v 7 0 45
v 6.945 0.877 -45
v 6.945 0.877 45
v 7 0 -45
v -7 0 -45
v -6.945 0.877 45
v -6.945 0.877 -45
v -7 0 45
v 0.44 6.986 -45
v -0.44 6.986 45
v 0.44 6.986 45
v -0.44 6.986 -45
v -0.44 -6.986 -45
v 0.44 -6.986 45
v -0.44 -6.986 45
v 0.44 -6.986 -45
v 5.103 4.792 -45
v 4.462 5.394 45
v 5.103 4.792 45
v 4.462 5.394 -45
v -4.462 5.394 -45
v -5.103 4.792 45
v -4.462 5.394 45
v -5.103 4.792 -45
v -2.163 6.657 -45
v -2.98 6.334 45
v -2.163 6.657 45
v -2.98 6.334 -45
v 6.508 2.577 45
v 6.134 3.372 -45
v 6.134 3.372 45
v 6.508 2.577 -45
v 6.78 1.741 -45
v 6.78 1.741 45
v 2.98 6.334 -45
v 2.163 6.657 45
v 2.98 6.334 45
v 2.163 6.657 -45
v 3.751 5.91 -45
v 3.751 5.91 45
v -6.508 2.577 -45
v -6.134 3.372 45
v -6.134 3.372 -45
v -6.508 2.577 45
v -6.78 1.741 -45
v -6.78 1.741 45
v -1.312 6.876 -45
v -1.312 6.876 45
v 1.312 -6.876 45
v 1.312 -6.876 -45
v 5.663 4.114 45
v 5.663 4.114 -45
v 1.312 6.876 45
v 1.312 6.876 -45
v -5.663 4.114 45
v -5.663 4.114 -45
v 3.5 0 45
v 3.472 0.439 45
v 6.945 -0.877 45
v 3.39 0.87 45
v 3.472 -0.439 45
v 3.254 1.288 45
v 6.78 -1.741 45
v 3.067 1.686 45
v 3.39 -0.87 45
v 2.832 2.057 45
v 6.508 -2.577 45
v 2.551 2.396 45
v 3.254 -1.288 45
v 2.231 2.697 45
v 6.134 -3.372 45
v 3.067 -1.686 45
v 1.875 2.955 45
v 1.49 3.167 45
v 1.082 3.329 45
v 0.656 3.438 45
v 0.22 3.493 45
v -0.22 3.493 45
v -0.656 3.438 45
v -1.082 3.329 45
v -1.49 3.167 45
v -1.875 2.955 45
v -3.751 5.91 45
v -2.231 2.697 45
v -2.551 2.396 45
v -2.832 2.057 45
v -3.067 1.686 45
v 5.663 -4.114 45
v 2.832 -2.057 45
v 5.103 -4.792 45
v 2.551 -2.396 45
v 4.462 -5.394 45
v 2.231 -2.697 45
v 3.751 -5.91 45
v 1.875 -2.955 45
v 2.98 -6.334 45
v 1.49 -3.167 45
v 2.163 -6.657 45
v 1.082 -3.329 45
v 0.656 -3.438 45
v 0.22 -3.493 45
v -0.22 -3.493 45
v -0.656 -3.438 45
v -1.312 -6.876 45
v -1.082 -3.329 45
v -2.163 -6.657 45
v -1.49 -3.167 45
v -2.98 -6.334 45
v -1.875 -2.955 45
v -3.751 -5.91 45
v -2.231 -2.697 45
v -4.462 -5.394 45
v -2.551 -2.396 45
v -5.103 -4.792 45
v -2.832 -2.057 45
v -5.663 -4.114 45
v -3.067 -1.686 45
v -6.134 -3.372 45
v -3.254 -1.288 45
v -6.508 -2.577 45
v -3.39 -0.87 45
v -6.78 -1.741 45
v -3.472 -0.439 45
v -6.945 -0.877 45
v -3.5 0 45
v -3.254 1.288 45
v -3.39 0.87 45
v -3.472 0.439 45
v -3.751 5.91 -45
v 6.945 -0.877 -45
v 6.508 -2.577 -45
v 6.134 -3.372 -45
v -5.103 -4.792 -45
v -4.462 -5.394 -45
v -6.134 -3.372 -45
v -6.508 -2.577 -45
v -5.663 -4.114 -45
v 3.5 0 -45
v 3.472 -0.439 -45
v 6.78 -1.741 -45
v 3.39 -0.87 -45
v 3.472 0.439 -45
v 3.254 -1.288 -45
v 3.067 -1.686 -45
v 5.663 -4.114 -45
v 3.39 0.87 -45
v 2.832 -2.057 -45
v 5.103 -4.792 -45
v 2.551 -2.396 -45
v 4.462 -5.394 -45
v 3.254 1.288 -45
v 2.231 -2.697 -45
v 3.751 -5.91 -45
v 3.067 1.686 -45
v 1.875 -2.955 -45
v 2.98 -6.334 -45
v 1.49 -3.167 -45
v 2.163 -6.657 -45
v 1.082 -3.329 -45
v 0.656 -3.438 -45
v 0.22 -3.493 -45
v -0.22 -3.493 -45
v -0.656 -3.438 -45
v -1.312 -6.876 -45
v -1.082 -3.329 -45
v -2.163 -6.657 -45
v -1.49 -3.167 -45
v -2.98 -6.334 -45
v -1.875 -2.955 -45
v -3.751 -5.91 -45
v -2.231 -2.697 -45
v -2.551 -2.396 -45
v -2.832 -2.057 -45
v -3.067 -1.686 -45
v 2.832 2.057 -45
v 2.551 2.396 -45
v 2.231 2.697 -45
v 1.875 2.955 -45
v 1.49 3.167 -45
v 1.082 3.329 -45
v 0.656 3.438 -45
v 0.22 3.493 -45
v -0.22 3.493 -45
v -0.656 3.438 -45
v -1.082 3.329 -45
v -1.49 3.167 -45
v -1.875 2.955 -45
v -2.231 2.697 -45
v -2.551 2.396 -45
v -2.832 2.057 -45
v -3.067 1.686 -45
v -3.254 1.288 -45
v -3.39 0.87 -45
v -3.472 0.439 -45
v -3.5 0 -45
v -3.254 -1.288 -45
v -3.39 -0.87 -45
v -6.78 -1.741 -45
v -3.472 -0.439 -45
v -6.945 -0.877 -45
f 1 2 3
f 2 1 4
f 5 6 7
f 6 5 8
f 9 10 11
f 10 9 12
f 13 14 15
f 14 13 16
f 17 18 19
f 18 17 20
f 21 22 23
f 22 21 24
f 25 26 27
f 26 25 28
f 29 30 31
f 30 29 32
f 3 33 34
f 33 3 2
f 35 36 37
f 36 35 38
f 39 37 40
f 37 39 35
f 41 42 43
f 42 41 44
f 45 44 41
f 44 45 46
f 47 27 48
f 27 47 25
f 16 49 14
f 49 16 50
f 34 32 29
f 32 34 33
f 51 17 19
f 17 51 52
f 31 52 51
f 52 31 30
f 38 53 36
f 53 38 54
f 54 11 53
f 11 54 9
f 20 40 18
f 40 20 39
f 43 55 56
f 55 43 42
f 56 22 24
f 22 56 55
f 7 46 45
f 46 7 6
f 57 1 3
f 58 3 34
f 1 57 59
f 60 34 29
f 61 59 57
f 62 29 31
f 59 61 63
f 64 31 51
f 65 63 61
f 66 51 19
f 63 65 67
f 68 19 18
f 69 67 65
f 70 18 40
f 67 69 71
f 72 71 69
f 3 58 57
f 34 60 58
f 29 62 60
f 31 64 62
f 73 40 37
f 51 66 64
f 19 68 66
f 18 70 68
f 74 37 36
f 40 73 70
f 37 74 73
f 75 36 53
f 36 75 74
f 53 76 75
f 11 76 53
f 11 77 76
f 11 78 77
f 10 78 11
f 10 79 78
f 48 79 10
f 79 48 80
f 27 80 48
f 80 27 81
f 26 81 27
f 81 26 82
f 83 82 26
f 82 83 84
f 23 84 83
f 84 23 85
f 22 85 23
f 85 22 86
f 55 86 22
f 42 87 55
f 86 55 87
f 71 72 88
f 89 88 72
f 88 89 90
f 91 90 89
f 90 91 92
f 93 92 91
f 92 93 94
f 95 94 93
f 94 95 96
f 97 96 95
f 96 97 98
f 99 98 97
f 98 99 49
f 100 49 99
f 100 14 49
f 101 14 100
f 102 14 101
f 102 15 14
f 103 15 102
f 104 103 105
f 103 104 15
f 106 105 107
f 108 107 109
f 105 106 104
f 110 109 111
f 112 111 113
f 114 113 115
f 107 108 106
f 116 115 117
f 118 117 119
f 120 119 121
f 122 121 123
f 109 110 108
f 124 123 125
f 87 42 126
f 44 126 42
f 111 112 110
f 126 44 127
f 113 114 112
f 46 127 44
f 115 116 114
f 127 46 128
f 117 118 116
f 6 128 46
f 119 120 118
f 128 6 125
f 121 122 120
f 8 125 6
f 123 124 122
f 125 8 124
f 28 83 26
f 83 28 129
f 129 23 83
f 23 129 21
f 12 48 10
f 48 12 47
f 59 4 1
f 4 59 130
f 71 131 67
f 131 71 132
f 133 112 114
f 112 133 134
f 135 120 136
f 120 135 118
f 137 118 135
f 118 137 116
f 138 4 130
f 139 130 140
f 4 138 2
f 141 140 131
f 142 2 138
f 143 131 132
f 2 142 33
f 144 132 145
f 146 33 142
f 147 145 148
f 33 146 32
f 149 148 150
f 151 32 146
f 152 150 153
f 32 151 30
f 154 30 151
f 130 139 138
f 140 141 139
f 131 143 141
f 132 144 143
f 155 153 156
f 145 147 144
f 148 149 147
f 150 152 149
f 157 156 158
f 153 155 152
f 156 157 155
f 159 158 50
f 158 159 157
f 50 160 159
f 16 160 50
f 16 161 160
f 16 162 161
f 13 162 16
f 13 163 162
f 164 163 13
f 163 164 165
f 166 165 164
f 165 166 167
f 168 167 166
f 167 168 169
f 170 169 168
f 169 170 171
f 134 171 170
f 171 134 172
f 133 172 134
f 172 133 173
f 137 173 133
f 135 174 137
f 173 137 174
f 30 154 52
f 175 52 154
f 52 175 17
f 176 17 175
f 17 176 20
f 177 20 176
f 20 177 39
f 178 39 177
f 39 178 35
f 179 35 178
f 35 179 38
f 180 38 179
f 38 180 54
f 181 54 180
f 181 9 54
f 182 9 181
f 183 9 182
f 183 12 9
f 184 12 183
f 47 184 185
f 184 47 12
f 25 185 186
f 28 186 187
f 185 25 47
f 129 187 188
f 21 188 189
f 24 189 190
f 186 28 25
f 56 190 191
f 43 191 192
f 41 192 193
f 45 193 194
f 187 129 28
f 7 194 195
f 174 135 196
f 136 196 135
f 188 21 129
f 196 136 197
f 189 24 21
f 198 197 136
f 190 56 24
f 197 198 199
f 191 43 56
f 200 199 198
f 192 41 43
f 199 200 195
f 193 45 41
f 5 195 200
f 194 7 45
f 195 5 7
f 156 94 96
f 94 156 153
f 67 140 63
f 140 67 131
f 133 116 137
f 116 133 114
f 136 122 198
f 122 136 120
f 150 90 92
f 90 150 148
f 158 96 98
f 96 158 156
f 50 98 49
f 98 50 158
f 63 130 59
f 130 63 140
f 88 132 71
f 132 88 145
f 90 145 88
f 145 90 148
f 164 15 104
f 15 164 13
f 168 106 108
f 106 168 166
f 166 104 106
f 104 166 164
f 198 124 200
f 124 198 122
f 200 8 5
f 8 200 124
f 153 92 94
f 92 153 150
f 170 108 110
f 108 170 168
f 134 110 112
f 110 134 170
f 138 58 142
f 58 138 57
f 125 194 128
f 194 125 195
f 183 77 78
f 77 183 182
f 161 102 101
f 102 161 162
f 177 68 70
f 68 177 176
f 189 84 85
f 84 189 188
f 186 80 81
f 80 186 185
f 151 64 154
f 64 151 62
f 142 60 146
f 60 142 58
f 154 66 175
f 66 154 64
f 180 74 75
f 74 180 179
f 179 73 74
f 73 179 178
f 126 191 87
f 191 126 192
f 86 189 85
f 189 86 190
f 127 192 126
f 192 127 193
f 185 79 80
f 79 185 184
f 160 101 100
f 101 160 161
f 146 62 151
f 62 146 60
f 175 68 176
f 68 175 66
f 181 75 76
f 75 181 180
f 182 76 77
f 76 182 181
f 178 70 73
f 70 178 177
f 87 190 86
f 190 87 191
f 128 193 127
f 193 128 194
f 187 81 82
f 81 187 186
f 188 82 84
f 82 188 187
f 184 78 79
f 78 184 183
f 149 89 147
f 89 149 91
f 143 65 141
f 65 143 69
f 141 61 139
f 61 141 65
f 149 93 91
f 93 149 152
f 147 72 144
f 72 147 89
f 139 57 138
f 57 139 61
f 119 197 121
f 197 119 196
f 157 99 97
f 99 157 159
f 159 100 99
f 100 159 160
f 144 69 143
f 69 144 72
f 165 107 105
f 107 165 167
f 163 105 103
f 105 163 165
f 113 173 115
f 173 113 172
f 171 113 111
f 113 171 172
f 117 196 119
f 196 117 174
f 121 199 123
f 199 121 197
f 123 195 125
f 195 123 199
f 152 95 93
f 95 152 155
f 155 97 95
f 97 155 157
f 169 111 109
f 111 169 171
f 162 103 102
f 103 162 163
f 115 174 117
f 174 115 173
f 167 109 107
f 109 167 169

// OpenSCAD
$fn = 50;


difference() {
	union() {
		translate(v = [0, 0, -45.0000000000]) {
			cylinder(h = 90, r = 7.0000000000);
		}
	}
	union() {
		translate(v = [0, 0, -100.0000000000]) {
			cylinder(h = 200, r = 3.5000000000);
		}
	}
}
